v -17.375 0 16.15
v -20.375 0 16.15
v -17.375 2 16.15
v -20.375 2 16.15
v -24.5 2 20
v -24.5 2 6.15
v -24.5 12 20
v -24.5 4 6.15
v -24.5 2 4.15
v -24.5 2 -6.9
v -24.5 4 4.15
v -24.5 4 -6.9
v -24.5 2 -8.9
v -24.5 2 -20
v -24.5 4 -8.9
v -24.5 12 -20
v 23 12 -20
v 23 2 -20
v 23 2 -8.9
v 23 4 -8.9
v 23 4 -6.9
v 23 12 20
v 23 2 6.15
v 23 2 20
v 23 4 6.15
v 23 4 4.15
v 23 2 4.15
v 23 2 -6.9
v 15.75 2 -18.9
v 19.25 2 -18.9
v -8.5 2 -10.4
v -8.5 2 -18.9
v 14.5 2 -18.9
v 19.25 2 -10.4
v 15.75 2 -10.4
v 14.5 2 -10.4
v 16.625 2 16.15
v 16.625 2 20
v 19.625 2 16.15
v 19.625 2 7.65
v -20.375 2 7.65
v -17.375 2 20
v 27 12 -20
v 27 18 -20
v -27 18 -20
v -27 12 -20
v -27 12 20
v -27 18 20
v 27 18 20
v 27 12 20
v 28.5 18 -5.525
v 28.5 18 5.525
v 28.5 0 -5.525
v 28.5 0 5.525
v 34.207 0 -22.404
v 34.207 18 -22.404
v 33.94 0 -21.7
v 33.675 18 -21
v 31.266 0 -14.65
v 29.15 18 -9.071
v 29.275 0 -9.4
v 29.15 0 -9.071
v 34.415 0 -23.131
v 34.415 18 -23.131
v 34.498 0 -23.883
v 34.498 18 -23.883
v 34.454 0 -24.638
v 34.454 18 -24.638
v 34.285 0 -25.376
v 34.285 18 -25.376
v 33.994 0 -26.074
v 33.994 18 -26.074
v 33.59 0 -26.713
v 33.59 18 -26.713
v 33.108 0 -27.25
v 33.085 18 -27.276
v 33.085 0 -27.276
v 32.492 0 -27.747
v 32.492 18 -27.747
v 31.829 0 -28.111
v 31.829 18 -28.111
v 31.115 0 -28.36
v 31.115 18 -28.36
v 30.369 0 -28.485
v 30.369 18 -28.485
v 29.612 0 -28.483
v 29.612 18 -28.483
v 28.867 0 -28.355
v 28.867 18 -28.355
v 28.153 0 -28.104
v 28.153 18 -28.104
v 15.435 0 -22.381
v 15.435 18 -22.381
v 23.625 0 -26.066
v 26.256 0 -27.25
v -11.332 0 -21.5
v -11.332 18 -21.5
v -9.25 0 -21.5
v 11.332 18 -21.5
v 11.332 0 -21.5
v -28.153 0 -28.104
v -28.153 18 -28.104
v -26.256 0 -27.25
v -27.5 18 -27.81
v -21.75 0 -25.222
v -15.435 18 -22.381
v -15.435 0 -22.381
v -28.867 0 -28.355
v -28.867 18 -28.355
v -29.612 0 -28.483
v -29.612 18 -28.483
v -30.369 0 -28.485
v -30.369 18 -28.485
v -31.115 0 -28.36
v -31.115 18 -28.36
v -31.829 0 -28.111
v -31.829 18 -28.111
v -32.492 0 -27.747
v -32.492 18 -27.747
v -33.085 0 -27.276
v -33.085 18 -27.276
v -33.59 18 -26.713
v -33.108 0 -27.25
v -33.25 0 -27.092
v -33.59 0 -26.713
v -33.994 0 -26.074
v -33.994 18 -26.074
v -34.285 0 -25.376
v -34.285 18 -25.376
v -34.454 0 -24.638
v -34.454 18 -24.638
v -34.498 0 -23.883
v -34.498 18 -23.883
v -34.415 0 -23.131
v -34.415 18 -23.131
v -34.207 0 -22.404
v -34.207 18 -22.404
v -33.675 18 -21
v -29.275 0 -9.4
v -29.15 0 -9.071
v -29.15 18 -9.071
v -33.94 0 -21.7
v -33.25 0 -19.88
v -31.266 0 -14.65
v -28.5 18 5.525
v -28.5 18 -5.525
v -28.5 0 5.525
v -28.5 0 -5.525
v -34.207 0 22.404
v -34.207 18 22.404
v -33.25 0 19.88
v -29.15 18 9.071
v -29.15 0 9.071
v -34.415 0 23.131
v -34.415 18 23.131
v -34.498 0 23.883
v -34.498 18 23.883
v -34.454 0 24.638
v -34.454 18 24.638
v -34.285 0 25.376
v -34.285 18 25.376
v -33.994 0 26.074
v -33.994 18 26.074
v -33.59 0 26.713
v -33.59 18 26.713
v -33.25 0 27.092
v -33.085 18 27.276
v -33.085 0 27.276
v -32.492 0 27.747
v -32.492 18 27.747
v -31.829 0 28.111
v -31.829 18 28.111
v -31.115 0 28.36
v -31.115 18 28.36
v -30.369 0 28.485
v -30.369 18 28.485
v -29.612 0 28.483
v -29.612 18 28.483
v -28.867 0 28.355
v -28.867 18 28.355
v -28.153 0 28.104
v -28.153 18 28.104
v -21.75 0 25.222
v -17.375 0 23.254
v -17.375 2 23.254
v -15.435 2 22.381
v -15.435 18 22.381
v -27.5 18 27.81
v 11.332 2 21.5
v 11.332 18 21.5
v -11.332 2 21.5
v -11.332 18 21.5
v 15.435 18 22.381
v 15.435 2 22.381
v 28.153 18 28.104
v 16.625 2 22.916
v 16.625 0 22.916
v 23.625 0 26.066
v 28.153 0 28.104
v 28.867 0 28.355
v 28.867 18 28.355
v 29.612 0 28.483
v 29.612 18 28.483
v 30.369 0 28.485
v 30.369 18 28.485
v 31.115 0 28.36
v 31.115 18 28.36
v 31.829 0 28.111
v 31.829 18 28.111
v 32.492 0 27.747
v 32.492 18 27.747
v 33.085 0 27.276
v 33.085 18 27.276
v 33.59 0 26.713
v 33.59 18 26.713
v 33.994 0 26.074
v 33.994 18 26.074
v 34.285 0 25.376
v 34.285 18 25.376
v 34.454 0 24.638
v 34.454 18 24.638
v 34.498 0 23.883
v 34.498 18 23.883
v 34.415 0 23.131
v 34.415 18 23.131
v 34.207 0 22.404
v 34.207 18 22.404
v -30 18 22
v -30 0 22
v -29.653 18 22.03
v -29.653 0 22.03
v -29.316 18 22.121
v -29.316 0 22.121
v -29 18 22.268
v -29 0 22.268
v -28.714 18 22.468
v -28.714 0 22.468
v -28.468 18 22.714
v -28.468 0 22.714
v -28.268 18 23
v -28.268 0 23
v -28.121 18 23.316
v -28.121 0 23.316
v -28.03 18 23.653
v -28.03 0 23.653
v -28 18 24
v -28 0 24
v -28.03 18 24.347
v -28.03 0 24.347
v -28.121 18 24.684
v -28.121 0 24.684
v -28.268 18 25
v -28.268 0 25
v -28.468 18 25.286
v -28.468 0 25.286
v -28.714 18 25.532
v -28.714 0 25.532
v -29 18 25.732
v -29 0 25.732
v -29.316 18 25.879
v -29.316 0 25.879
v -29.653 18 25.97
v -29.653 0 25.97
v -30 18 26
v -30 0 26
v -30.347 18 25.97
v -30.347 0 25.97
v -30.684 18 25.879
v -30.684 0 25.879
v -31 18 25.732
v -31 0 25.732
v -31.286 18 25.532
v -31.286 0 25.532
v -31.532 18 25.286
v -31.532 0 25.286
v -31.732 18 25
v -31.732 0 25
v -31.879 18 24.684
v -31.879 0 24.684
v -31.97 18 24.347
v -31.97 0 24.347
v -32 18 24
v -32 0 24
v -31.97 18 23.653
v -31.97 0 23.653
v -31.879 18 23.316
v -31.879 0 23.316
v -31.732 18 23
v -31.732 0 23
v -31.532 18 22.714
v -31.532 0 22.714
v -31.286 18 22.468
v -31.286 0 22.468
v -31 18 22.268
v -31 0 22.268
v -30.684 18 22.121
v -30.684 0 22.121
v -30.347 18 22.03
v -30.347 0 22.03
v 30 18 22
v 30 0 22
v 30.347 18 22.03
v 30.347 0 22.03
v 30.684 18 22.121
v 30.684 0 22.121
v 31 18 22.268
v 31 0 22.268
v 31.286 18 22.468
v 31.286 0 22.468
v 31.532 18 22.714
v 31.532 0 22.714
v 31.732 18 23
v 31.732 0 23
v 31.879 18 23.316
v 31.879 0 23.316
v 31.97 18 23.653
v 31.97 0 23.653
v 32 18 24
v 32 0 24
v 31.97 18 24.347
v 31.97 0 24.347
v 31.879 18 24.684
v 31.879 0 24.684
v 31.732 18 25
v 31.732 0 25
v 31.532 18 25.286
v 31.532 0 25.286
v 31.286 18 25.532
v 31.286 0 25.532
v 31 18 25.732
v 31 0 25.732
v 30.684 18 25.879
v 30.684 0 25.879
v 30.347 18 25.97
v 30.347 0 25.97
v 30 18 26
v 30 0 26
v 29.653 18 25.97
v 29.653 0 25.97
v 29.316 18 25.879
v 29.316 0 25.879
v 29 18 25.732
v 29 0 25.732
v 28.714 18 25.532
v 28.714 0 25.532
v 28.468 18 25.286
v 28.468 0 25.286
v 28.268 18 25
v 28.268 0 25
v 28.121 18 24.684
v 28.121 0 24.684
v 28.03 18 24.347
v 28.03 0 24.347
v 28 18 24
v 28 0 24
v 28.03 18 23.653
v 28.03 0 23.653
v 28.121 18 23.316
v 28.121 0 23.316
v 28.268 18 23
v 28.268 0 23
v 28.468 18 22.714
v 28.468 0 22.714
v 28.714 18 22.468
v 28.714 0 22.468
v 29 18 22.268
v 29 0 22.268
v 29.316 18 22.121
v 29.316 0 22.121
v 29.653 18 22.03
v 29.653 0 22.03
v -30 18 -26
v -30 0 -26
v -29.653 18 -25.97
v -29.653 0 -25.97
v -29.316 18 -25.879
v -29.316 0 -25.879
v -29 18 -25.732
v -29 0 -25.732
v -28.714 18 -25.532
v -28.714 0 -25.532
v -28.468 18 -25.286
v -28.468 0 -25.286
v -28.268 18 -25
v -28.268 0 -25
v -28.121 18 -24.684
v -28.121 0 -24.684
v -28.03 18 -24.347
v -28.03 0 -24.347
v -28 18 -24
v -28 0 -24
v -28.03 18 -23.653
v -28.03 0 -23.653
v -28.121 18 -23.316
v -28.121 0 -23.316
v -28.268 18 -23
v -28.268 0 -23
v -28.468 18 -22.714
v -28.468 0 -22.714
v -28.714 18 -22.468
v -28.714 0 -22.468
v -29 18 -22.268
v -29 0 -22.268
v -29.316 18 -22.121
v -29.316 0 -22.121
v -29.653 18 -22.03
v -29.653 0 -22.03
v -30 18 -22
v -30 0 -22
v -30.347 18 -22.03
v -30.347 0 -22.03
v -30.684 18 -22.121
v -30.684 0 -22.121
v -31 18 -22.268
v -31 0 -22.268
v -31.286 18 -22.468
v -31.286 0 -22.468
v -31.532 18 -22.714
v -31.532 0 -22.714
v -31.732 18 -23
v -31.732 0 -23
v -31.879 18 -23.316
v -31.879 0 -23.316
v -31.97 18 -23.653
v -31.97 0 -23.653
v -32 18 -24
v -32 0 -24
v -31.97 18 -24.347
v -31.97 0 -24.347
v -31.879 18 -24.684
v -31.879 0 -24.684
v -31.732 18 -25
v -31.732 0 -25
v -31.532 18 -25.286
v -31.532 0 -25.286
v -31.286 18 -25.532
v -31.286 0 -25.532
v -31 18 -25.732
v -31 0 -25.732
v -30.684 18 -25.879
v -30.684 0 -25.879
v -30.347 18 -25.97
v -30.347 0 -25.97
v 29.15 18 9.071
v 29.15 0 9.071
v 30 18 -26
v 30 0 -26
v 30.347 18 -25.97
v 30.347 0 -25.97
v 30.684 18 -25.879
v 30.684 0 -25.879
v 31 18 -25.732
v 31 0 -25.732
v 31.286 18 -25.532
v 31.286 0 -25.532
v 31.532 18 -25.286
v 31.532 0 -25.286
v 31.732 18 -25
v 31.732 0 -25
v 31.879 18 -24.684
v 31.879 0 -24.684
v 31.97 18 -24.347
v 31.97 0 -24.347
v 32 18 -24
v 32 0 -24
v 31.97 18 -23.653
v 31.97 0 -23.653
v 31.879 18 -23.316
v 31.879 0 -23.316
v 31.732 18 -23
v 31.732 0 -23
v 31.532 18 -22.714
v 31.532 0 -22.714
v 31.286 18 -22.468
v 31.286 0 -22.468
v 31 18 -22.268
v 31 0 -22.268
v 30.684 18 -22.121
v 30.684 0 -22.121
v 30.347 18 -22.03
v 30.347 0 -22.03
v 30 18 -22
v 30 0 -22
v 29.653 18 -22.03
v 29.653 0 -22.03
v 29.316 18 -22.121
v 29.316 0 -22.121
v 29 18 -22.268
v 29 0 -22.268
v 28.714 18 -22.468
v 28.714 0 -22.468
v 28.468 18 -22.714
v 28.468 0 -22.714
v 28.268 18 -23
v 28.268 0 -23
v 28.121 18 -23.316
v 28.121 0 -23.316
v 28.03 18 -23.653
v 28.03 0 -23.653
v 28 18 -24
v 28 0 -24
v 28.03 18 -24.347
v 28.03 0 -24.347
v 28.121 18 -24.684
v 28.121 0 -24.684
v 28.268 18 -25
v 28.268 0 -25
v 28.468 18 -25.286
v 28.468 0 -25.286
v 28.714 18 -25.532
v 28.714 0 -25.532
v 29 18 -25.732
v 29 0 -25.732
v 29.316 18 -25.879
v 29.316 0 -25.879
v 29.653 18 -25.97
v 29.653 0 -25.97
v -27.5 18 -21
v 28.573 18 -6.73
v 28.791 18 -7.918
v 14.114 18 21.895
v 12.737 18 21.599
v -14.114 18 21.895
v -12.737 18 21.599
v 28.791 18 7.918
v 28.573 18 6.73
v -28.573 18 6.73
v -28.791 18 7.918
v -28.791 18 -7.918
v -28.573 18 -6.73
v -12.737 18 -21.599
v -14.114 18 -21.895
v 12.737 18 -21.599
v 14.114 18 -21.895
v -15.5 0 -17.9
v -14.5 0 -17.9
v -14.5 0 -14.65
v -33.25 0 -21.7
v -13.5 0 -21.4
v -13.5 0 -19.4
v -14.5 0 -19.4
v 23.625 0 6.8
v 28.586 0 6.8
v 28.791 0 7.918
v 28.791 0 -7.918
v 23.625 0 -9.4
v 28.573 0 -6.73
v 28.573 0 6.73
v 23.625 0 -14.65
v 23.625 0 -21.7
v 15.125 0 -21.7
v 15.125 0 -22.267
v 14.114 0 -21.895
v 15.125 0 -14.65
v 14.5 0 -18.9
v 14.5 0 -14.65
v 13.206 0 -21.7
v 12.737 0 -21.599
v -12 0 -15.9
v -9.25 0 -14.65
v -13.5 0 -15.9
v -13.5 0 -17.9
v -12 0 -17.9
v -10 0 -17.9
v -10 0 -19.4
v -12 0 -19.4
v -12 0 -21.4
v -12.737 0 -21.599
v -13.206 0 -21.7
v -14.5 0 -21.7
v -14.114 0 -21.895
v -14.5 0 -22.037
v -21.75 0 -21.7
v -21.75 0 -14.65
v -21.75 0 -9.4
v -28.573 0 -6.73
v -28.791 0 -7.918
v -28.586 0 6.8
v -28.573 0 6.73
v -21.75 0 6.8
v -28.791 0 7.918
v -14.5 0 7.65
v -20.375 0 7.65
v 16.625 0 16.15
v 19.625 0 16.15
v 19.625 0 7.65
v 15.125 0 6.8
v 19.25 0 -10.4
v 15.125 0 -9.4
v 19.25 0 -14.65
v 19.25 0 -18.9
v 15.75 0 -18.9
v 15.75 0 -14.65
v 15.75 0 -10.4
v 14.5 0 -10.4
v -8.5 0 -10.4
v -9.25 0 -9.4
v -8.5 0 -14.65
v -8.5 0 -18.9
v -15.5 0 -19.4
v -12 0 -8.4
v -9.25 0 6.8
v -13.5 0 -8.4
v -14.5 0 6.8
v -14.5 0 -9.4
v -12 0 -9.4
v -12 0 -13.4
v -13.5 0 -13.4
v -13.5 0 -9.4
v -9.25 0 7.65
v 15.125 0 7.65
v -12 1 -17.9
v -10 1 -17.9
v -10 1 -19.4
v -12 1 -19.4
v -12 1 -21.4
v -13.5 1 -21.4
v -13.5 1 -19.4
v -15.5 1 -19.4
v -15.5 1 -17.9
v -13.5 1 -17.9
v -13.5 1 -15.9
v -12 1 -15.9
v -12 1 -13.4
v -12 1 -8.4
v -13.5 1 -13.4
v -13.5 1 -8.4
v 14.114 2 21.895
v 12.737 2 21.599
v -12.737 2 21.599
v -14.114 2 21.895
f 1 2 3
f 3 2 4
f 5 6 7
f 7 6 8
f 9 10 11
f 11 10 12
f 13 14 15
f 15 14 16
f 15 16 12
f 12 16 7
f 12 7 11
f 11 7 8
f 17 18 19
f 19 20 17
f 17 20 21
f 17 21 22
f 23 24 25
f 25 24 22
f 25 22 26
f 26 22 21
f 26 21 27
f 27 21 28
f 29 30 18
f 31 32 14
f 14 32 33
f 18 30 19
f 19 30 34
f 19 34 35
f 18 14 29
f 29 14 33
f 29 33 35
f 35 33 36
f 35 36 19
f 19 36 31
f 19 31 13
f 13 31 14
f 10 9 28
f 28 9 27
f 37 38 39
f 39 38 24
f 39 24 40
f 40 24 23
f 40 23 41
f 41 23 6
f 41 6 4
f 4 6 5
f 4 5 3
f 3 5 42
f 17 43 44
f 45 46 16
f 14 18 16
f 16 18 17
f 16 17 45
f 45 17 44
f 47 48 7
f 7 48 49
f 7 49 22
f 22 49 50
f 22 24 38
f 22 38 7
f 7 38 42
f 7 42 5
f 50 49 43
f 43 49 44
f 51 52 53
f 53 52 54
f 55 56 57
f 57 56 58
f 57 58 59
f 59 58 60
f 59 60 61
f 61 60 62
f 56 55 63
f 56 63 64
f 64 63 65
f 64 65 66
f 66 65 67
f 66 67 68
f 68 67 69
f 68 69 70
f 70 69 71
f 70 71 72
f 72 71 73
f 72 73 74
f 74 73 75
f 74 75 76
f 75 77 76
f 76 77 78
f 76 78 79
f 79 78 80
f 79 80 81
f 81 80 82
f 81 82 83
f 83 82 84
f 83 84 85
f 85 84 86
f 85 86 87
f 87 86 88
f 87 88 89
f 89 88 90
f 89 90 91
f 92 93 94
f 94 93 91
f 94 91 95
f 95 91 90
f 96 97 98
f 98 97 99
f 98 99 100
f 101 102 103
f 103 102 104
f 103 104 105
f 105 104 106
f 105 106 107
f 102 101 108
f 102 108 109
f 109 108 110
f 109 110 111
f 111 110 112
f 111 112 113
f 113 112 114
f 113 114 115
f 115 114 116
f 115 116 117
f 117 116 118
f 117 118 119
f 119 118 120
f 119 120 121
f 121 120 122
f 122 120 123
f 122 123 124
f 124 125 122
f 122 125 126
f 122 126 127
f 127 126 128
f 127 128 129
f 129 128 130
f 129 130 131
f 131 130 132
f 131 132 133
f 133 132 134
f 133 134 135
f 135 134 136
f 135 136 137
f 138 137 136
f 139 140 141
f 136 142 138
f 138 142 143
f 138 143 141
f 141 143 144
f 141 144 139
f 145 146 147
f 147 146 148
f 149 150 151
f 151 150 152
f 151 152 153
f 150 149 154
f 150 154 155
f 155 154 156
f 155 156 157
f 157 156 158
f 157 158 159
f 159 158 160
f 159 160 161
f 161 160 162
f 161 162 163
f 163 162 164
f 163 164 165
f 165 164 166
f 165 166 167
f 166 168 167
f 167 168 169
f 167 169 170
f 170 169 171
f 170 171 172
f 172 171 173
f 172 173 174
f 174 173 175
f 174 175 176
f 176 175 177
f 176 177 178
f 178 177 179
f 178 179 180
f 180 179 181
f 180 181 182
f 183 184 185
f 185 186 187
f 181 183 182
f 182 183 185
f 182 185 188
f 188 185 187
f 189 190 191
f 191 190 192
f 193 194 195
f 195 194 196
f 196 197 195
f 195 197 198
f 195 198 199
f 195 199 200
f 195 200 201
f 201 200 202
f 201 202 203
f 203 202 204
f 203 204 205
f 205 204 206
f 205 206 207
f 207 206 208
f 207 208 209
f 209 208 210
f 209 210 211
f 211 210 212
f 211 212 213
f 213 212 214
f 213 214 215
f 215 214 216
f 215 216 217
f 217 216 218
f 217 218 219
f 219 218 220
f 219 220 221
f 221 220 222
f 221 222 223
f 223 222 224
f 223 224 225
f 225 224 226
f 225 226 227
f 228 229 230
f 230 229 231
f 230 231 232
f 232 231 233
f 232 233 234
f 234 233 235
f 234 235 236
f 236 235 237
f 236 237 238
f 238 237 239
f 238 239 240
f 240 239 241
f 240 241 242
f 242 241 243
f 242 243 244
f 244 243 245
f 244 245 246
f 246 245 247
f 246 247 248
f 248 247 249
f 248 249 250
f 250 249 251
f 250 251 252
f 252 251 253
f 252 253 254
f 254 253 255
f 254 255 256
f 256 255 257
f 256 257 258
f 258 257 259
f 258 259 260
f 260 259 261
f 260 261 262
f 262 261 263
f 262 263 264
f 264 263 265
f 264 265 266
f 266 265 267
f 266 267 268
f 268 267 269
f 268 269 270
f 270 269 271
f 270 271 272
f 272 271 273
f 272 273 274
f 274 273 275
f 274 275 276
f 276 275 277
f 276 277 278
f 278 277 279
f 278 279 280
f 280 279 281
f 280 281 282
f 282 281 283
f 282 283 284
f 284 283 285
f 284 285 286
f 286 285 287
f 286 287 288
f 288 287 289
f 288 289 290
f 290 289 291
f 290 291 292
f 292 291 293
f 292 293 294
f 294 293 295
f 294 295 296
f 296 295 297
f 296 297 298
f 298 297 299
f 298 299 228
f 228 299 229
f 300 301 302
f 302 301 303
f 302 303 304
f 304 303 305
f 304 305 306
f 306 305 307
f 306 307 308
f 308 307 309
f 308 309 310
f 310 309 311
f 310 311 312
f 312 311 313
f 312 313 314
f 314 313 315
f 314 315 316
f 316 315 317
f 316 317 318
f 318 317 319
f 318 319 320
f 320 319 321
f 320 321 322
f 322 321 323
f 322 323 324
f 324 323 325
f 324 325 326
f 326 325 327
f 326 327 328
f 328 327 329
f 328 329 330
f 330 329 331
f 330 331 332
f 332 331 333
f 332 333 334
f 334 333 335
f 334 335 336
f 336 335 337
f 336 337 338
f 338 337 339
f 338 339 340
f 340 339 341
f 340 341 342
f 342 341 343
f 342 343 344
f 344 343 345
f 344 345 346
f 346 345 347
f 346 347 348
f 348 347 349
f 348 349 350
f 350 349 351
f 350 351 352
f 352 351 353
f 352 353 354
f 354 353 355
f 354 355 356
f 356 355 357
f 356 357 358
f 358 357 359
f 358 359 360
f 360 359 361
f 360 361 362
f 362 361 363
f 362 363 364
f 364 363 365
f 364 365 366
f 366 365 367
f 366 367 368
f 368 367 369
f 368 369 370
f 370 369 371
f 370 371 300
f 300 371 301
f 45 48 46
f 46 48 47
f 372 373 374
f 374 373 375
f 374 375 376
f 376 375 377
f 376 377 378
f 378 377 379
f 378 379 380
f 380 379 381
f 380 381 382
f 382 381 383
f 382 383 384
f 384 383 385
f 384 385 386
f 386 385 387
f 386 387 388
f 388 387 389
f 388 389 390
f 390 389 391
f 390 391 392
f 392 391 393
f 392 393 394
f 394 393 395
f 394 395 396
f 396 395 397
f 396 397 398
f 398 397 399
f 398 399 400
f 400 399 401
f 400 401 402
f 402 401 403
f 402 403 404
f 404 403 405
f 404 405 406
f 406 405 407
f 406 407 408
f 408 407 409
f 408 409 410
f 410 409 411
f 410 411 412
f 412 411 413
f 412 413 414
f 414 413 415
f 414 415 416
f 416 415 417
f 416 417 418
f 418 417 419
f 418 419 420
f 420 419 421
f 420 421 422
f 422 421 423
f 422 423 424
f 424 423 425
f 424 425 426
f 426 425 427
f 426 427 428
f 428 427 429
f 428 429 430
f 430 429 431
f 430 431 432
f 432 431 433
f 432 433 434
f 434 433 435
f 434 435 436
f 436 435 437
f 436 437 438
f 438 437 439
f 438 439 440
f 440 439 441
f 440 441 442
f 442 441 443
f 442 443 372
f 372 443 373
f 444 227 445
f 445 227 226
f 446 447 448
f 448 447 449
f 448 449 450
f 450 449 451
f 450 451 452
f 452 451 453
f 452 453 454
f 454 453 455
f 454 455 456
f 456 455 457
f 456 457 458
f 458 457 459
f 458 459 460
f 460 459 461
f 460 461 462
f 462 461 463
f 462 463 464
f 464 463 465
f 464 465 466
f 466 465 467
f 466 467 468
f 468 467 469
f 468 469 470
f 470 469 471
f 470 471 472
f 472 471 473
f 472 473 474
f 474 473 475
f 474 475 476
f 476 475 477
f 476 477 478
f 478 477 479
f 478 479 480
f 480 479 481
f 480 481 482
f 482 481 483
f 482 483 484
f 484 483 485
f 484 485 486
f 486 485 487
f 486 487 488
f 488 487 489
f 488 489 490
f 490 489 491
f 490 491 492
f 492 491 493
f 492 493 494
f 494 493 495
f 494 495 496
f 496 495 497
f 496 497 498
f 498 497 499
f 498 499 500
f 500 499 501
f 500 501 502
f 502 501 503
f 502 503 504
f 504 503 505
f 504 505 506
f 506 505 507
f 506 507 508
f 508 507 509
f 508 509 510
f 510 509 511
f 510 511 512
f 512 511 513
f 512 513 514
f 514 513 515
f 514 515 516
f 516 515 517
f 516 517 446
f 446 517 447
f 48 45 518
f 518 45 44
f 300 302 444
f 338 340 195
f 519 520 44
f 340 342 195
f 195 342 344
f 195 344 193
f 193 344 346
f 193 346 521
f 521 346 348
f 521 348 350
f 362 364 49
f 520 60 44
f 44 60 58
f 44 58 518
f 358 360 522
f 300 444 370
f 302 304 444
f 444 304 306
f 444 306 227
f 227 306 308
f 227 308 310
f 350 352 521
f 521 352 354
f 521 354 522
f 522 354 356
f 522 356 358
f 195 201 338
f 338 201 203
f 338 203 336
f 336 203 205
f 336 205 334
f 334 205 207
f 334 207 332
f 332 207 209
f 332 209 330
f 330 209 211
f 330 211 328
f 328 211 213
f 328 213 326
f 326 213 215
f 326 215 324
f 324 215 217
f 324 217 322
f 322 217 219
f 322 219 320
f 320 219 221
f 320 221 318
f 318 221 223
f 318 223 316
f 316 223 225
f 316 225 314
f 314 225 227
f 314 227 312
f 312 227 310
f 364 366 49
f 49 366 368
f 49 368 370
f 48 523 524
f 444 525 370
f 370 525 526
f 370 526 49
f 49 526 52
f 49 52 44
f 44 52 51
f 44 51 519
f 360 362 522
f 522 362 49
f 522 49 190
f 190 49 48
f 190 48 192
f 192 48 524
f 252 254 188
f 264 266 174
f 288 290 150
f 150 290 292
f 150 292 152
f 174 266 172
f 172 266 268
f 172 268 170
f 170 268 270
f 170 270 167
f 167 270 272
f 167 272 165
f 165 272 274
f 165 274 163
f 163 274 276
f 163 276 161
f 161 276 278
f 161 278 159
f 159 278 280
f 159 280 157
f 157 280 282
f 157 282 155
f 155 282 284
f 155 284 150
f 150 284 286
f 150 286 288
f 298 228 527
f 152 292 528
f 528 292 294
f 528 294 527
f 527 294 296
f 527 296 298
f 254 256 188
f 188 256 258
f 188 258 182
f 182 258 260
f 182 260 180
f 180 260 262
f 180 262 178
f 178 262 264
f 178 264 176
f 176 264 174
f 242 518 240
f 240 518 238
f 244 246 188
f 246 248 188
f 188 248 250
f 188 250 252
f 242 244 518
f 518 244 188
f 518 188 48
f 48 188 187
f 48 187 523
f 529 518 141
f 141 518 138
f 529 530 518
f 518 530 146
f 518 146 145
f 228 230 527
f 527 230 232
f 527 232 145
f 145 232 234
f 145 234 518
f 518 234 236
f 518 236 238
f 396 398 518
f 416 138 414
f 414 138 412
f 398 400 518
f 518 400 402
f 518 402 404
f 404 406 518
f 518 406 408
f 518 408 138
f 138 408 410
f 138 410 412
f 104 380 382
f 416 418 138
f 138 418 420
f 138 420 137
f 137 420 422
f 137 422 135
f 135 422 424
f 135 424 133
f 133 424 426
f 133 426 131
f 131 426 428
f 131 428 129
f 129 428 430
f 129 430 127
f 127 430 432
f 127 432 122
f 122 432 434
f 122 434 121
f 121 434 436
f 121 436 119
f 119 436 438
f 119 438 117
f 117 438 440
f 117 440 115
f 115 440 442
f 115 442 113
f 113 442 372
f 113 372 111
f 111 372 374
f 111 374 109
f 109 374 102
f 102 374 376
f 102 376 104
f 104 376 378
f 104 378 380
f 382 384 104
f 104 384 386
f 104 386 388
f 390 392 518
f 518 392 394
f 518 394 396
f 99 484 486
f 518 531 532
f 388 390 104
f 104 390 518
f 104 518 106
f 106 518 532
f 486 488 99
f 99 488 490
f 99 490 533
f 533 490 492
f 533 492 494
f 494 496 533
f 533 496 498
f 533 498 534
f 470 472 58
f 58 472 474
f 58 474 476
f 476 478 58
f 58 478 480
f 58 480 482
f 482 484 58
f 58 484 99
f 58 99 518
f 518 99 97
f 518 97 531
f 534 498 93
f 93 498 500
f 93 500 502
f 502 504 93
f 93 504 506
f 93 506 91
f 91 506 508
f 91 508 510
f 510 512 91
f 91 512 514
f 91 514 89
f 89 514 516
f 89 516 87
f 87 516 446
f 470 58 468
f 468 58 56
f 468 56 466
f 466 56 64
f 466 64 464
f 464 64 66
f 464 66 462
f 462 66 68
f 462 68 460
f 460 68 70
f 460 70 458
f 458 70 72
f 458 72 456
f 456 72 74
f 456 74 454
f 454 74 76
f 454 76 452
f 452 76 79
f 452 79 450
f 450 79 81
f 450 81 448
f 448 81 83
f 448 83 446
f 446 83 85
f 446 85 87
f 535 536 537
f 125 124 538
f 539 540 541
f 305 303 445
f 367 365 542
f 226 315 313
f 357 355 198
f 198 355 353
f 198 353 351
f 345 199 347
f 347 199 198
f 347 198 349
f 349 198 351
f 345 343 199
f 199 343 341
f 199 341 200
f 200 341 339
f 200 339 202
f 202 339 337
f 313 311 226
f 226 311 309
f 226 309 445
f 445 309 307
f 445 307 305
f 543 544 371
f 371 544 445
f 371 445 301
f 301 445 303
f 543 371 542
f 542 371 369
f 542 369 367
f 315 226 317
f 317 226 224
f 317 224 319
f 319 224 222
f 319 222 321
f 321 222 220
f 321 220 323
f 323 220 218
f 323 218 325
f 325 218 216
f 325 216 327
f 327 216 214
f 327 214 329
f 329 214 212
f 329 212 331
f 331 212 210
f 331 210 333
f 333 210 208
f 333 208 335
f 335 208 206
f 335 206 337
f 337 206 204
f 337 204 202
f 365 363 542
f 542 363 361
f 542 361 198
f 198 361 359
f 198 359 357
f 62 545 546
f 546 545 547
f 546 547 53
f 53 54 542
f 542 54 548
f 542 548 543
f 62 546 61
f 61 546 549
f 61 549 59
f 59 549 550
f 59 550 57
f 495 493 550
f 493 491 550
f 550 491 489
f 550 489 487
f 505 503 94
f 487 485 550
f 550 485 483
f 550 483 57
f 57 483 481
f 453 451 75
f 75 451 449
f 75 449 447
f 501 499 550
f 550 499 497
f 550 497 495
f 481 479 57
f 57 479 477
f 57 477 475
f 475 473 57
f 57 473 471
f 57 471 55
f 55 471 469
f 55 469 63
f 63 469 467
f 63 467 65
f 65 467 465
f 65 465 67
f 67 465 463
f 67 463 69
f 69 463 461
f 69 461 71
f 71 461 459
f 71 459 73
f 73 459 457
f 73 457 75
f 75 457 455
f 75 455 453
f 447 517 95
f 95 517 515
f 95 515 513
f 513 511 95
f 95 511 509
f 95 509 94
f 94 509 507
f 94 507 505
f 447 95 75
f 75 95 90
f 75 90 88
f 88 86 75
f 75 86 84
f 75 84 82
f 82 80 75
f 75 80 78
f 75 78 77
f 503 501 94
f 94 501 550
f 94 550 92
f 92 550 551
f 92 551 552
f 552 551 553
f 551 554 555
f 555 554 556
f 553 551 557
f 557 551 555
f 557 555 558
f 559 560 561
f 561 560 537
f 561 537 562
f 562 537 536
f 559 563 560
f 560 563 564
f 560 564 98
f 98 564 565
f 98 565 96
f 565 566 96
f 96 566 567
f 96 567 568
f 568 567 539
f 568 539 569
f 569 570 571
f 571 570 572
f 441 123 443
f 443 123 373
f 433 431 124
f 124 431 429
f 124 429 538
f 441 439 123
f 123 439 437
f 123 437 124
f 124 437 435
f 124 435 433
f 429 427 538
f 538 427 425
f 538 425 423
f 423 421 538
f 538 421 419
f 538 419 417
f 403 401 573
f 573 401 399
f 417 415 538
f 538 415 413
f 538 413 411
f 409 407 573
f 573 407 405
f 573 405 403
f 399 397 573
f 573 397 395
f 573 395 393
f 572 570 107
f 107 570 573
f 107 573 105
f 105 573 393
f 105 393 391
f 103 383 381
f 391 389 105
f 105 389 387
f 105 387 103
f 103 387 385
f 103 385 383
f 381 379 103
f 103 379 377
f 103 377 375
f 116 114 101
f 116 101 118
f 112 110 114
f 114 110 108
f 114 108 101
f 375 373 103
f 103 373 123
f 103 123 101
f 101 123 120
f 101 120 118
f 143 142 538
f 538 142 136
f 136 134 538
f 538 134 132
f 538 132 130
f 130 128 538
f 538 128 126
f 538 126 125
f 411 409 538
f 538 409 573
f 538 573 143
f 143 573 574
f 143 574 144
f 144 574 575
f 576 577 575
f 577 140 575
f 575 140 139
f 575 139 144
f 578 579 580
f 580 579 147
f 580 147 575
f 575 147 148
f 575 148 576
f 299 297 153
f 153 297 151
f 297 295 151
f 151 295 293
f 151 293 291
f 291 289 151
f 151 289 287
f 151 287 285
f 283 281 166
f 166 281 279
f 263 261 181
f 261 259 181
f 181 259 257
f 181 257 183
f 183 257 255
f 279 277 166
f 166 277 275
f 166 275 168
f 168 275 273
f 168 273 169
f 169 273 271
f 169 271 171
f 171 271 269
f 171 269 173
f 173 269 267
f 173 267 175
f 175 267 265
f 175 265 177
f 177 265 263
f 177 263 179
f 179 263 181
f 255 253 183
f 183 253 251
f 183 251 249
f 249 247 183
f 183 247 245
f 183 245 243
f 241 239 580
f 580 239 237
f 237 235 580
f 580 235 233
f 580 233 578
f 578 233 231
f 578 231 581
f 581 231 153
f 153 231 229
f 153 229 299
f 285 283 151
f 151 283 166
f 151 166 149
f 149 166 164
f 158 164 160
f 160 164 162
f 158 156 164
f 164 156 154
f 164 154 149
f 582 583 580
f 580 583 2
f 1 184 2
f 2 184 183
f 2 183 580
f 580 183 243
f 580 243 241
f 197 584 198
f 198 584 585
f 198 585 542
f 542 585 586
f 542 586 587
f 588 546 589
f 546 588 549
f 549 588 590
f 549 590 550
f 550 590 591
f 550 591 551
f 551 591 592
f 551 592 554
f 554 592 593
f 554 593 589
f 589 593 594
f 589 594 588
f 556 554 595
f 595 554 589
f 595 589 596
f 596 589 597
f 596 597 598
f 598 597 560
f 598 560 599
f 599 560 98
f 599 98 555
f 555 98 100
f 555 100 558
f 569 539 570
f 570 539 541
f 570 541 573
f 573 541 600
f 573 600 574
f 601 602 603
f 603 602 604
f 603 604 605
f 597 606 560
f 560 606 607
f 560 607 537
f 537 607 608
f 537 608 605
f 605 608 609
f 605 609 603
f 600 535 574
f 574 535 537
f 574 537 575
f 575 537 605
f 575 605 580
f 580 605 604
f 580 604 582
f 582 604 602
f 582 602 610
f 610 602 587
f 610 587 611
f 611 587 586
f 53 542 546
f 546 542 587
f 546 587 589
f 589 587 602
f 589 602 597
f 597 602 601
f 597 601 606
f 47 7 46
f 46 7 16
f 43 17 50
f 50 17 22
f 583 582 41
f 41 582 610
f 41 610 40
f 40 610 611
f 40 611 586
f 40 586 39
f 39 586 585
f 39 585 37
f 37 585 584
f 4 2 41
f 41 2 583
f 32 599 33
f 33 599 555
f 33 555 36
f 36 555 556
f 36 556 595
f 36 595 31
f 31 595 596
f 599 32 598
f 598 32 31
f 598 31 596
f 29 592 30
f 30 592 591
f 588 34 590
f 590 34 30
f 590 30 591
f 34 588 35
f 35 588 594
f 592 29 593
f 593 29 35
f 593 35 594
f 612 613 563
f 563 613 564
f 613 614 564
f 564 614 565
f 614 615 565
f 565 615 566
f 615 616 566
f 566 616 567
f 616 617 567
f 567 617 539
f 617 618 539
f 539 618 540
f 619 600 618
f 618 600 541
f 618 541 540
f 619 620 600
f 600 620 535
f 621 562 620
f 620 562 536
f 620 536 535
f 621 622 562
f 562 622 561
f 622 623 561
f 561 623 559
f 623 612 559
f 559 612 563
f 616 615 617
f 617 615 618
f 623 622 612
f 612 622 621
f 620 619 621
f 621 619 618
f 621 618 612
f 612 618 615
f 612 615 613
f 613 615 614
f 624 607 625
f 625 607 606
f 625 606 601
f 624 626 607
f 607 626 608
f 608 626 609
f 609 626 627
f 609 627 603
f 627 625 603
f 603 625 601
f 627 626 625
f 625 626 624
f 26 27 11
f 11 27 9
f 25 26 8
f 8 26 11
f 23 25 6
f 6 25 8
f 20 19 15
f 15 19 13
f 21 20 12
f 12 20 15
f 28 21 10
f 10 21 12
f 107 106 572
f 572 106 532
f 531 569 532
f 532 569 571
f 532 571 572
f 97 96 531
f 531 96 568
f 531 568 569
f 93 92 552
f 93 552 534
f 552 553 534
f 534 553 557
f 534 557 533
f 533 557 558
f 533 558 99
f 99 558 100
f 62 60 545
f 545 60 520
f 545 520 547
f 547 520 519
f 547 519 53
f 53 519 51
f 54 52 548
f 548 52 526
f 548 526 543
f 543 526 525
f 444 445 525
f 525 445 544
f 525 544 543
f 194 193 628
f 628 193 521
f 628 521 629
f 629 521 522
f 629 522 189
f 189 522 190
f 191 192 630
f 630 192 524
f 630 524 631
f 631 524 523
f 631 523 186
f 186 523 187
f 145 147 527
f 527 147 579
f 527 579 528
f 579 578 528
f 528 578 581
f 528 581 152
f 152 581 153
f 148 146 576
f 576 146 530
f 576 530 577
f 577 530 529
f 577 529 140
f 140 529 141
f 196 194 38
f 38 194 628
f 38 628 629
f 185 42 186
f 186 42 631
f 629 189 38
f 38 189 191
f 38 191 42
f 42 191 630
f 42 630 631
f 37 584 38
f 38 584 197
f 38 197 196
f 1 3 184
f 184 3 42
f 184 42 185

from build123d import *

# Parameters (mm, degrees)
SKETCH1_R           = 2
SKETCH1_W           = 57
SKETCH1_H           = 43
SKETCH1_W_2         = 54
SKETCH1_H_2         = 40
BOSS_EXTRUDE1_DEPTH = 18
SKETCH2_W           = 2.5
SKETCH2_H           = 40
SKETCH2_W_2         = 4
BOSS_EXTRUDE2_DEPTH = 12
SKETCH3_W           = 54
SKETCH3_H           = 40
SKETCH3_W_2         = 40
SKETCH3_H_2         = 8.5
SKETCH3_W_3         = 23
SKETCH3_W_4         = 3.5
BOSS_EXTRUDE3_DEPTH = 2
SKETCH4_W           = 1.5
SKETCH4_H           = 5
CUT_EXTRUDE1_DEPTH  = 1
BOSS_EXTRUDE4_REACH = 59.5
SKETCH5_W           = 2
SKETCH5_H           = 2
FILLET1_R           = 10
CUT_EXTRUDE2_START  = -5.35
SKETCH6_W           = 34
SKETCH6_H           = 2
CUT_EXTRUDE2_DEPTH  = 7.103529


with BuildPart() as part:
    # Sketch1 → Boss-Extrude1 (new body)
    with BuildSketch(Plane(origin=(0, 0, 0), x_dir=(1, 0, 0), z_dir=(0, 1, 0))):
        with BuildLine():
            Line((-28.5, 7.357542402), (-28.5, 21.5))
            Line((-28.5, 21.5), (-13.47815401, 21.5))
            Line((-13.47815401, 21.5), (-28.153404403, 28.103667226))
            ThreePointArc((-28.153404403, 28.103667226), (-33.084632617, 27.276437336), (-34.207471192, 22.404009346))
            Line((-34.207471192, 22.404009346), (-28.5, 7.357542402))
        make_face()
        with Locations((-30, 24)):
            Circle(SKETCH1_R, mode=Mode.SUBTRACT)
        with BuildLine():
            Line((-28.5, -21.5), (-28.5, -7.357542402))
            Line((-28.5, -7.357542402), (-34.207471192, -22.404009346))
            ThreePointArc((-34.207471192, -22.404009346), (-33.084632617, -27.276437336), (-28.153404403, -28.103667226))
            Line((-28.153404403, -28.103667226), (-13.47815401, -21.5))
            Line((-13.47815401, -21.5), (-28.5, -21.5))
        make_face()
        with Locations((-30, -24)):
            Circle(SKETCH1_R, mode=Mode.SUBTRACT)
        Rectangle(SKETCH1_W, SKETCH1_H)
        Rectangle(SKETCH1_W_2, SKETCH1_H_2, mode=Mode.SUBTRACT)
        with BuildLine():
            Line((34.207471192, -22.404009346), (28.5, -7.357542402))
            Line((28.5, -7.357542402), (28.5, -21.5))
            Line((28.5, -21.5), (13.47815401, -21.5))
            Line((13.47815401, -21.5), (28.153404403, -28.103667226))
            ThreePointArc((28.153404403, -28.103667226), (33.084632617, -27.276437336), (34.207471192, -22.404009346))
        make_face()
        with Locations((30, -24)):
            Circle(SKETCH1_R, mode=Mode.SUBTRACT)
        with BuildLine():
            Line((28.153404403, 28.103667226), (13.47815401, 21.5))
            Line((13.47815401, 21.5), (28.5, 21.5))
            Line((28.5, 21.5), (28.5, 7.357542402))
            Line((28.5, 7.357542402), (34.207471192, 22.404009346))
            ThreePointArc((34.207471192, 22.404009346), (33.084632617, 27.276437336), (28.153404403, 28.103667226))
        make_face()
        with Locations((30, 24)):
            Circle(SKETCH1_R, mode=Mode.SUBTRACT)
    extrude(amount=BOSS_EXTRUDE1_DEPTH)

    # Sketch2 → Boss-Extrude2 (add)
    with BuildSketch(Plane(origin=(0, 0, 0), x_dir=(1, 0, 0), z_dir=(0, 1, 0))):
        with Locations((-25.75, 0)):
            Rectangle(SKETCH2_W, SKETCH2_H)
        with Locations((25, 0)):
            Rectangle(SKETCH2_W_2, SKETCH2_H)
    extrude(amount=BOSS_EXTRUDE2_DEPTH)

    # Sketch3 → Boss-Extrude3 (add)
    with BuildSketch(Plane(origin=(0, 0, 0), x_dir=(1, 0, 0), z_dir=(0, 1, 0))):
        Rectangle(SKETCH3_W, SKETCH3_H)
        with Locations((-0.375, -11.9)):
            Rectangle(SKETCH3_W_2, SKETCH3_H_2, mode=Mode.SUBTRACT)
        with Locations((3, 14.65)):
            Rectangle(SKETCH3_W_3, SKETCH3_H_2, mode=Mode.SUBTRACT)
        with Locations((17.5, 14.65)):
            Rectangle(SKETCH3_W_4, SKETCH3_H_2, mode=Mode.SUBTRACT)
    extrude(amount=BOSS_EXTRUDE3_DEPTH)

    # Sketch4 → Cut-Extrude1 (cut)
    with BuildSketch(Plane.XZ):
        Polygon((-10, -17.9), (-10, -19.4), (-12, -19.4), (-12, -21.4), (-13.5, -21.4), (-13.5, -19.4), (-15.5, -19.4), (-15.5, -17.9), (-13.5, -17.9), (-13.5, -15.9), (-12, -15.9), (-12, -17.9), align=None)
        with Locations((-12.75, -10.9)):
            Rectangle(SKETCH4_W, SKETCH4_H)
    extrude(amount=-CUT_EXTRUDE1_DEPTH, mode=Mode.SUBTRACT)

    # Sketch5 → Boss-Extrude4 (add, up to next)
    with BuildSketch(Plane.ZY.offset(-23), mode=Mode.PRIVATE) as boss_extrude4_sk1:
        with Locations((5.15, 3)):
            Rectangle(SKETCH5_W, SKETCH5_H)
    boss_extrude4_tool1 = extrude(boss_extrude4_sk1.sketch, amount=BOSS_EXTRUDE4_REACH, mode=Mode.PRIVATE) - part.part
    add(boss_extrude4_tool1.solids().sort_by_distance((23, 3, 5.15))[0])
    # Sketch5 → Boss-Extrude4 (add, up to next)
    with BuildSketch(Plane.ZY.offset(-23), mode=Mode.PRIVATE) as boss_extrude4_sk2:
        with Locations((-7.9, 3)):
            Rectangle(SKETCH5_W, SKETCH5_H)
    boss_extrude4_tool2 = extrude(boss_extrude4_sk2.sketch, amount=BOSS_EXTRUDE4_REACH, mode=Mode.PRIVATE) - part.part
    add(boss_extrude4_tool2.solids().sort_by_distance((23, 3, -7.9))[0])

    # Fillet1
    fillet1_edges = [part.edges().sort_by_distance(p)[0] for p in [
        (28.5, 9, 7.357542402),
        (13.47815401, 9, 21.5),
        (-13.47815401, 9, 21.5),
        (-28.5, 9, 7.357542402),
        (-28.5, 9, -7.357542402),
        (-13.47815401, 9, -21.5),
        (13.47815401, 9, -21.5),
        (28.5, 9, -7.357542402),
    ]]
    fillet(fillet1_edges, radius=FILLET1_R)

    # Sketch6 → Cut-Extrude2 (cut)
    with BuildSketch(Plane.XY.offset(21.5).offset(CUT_EXTRUDE2_START)):
        with Locations((-0.375, 1)):
            Rectangle(SKETCH6_W, SKETCH6_H)
    extrude(amount=CUT_EXTRUDE2_DEPTH, mode=Mode.SUBTRACT)


solid = part.part
